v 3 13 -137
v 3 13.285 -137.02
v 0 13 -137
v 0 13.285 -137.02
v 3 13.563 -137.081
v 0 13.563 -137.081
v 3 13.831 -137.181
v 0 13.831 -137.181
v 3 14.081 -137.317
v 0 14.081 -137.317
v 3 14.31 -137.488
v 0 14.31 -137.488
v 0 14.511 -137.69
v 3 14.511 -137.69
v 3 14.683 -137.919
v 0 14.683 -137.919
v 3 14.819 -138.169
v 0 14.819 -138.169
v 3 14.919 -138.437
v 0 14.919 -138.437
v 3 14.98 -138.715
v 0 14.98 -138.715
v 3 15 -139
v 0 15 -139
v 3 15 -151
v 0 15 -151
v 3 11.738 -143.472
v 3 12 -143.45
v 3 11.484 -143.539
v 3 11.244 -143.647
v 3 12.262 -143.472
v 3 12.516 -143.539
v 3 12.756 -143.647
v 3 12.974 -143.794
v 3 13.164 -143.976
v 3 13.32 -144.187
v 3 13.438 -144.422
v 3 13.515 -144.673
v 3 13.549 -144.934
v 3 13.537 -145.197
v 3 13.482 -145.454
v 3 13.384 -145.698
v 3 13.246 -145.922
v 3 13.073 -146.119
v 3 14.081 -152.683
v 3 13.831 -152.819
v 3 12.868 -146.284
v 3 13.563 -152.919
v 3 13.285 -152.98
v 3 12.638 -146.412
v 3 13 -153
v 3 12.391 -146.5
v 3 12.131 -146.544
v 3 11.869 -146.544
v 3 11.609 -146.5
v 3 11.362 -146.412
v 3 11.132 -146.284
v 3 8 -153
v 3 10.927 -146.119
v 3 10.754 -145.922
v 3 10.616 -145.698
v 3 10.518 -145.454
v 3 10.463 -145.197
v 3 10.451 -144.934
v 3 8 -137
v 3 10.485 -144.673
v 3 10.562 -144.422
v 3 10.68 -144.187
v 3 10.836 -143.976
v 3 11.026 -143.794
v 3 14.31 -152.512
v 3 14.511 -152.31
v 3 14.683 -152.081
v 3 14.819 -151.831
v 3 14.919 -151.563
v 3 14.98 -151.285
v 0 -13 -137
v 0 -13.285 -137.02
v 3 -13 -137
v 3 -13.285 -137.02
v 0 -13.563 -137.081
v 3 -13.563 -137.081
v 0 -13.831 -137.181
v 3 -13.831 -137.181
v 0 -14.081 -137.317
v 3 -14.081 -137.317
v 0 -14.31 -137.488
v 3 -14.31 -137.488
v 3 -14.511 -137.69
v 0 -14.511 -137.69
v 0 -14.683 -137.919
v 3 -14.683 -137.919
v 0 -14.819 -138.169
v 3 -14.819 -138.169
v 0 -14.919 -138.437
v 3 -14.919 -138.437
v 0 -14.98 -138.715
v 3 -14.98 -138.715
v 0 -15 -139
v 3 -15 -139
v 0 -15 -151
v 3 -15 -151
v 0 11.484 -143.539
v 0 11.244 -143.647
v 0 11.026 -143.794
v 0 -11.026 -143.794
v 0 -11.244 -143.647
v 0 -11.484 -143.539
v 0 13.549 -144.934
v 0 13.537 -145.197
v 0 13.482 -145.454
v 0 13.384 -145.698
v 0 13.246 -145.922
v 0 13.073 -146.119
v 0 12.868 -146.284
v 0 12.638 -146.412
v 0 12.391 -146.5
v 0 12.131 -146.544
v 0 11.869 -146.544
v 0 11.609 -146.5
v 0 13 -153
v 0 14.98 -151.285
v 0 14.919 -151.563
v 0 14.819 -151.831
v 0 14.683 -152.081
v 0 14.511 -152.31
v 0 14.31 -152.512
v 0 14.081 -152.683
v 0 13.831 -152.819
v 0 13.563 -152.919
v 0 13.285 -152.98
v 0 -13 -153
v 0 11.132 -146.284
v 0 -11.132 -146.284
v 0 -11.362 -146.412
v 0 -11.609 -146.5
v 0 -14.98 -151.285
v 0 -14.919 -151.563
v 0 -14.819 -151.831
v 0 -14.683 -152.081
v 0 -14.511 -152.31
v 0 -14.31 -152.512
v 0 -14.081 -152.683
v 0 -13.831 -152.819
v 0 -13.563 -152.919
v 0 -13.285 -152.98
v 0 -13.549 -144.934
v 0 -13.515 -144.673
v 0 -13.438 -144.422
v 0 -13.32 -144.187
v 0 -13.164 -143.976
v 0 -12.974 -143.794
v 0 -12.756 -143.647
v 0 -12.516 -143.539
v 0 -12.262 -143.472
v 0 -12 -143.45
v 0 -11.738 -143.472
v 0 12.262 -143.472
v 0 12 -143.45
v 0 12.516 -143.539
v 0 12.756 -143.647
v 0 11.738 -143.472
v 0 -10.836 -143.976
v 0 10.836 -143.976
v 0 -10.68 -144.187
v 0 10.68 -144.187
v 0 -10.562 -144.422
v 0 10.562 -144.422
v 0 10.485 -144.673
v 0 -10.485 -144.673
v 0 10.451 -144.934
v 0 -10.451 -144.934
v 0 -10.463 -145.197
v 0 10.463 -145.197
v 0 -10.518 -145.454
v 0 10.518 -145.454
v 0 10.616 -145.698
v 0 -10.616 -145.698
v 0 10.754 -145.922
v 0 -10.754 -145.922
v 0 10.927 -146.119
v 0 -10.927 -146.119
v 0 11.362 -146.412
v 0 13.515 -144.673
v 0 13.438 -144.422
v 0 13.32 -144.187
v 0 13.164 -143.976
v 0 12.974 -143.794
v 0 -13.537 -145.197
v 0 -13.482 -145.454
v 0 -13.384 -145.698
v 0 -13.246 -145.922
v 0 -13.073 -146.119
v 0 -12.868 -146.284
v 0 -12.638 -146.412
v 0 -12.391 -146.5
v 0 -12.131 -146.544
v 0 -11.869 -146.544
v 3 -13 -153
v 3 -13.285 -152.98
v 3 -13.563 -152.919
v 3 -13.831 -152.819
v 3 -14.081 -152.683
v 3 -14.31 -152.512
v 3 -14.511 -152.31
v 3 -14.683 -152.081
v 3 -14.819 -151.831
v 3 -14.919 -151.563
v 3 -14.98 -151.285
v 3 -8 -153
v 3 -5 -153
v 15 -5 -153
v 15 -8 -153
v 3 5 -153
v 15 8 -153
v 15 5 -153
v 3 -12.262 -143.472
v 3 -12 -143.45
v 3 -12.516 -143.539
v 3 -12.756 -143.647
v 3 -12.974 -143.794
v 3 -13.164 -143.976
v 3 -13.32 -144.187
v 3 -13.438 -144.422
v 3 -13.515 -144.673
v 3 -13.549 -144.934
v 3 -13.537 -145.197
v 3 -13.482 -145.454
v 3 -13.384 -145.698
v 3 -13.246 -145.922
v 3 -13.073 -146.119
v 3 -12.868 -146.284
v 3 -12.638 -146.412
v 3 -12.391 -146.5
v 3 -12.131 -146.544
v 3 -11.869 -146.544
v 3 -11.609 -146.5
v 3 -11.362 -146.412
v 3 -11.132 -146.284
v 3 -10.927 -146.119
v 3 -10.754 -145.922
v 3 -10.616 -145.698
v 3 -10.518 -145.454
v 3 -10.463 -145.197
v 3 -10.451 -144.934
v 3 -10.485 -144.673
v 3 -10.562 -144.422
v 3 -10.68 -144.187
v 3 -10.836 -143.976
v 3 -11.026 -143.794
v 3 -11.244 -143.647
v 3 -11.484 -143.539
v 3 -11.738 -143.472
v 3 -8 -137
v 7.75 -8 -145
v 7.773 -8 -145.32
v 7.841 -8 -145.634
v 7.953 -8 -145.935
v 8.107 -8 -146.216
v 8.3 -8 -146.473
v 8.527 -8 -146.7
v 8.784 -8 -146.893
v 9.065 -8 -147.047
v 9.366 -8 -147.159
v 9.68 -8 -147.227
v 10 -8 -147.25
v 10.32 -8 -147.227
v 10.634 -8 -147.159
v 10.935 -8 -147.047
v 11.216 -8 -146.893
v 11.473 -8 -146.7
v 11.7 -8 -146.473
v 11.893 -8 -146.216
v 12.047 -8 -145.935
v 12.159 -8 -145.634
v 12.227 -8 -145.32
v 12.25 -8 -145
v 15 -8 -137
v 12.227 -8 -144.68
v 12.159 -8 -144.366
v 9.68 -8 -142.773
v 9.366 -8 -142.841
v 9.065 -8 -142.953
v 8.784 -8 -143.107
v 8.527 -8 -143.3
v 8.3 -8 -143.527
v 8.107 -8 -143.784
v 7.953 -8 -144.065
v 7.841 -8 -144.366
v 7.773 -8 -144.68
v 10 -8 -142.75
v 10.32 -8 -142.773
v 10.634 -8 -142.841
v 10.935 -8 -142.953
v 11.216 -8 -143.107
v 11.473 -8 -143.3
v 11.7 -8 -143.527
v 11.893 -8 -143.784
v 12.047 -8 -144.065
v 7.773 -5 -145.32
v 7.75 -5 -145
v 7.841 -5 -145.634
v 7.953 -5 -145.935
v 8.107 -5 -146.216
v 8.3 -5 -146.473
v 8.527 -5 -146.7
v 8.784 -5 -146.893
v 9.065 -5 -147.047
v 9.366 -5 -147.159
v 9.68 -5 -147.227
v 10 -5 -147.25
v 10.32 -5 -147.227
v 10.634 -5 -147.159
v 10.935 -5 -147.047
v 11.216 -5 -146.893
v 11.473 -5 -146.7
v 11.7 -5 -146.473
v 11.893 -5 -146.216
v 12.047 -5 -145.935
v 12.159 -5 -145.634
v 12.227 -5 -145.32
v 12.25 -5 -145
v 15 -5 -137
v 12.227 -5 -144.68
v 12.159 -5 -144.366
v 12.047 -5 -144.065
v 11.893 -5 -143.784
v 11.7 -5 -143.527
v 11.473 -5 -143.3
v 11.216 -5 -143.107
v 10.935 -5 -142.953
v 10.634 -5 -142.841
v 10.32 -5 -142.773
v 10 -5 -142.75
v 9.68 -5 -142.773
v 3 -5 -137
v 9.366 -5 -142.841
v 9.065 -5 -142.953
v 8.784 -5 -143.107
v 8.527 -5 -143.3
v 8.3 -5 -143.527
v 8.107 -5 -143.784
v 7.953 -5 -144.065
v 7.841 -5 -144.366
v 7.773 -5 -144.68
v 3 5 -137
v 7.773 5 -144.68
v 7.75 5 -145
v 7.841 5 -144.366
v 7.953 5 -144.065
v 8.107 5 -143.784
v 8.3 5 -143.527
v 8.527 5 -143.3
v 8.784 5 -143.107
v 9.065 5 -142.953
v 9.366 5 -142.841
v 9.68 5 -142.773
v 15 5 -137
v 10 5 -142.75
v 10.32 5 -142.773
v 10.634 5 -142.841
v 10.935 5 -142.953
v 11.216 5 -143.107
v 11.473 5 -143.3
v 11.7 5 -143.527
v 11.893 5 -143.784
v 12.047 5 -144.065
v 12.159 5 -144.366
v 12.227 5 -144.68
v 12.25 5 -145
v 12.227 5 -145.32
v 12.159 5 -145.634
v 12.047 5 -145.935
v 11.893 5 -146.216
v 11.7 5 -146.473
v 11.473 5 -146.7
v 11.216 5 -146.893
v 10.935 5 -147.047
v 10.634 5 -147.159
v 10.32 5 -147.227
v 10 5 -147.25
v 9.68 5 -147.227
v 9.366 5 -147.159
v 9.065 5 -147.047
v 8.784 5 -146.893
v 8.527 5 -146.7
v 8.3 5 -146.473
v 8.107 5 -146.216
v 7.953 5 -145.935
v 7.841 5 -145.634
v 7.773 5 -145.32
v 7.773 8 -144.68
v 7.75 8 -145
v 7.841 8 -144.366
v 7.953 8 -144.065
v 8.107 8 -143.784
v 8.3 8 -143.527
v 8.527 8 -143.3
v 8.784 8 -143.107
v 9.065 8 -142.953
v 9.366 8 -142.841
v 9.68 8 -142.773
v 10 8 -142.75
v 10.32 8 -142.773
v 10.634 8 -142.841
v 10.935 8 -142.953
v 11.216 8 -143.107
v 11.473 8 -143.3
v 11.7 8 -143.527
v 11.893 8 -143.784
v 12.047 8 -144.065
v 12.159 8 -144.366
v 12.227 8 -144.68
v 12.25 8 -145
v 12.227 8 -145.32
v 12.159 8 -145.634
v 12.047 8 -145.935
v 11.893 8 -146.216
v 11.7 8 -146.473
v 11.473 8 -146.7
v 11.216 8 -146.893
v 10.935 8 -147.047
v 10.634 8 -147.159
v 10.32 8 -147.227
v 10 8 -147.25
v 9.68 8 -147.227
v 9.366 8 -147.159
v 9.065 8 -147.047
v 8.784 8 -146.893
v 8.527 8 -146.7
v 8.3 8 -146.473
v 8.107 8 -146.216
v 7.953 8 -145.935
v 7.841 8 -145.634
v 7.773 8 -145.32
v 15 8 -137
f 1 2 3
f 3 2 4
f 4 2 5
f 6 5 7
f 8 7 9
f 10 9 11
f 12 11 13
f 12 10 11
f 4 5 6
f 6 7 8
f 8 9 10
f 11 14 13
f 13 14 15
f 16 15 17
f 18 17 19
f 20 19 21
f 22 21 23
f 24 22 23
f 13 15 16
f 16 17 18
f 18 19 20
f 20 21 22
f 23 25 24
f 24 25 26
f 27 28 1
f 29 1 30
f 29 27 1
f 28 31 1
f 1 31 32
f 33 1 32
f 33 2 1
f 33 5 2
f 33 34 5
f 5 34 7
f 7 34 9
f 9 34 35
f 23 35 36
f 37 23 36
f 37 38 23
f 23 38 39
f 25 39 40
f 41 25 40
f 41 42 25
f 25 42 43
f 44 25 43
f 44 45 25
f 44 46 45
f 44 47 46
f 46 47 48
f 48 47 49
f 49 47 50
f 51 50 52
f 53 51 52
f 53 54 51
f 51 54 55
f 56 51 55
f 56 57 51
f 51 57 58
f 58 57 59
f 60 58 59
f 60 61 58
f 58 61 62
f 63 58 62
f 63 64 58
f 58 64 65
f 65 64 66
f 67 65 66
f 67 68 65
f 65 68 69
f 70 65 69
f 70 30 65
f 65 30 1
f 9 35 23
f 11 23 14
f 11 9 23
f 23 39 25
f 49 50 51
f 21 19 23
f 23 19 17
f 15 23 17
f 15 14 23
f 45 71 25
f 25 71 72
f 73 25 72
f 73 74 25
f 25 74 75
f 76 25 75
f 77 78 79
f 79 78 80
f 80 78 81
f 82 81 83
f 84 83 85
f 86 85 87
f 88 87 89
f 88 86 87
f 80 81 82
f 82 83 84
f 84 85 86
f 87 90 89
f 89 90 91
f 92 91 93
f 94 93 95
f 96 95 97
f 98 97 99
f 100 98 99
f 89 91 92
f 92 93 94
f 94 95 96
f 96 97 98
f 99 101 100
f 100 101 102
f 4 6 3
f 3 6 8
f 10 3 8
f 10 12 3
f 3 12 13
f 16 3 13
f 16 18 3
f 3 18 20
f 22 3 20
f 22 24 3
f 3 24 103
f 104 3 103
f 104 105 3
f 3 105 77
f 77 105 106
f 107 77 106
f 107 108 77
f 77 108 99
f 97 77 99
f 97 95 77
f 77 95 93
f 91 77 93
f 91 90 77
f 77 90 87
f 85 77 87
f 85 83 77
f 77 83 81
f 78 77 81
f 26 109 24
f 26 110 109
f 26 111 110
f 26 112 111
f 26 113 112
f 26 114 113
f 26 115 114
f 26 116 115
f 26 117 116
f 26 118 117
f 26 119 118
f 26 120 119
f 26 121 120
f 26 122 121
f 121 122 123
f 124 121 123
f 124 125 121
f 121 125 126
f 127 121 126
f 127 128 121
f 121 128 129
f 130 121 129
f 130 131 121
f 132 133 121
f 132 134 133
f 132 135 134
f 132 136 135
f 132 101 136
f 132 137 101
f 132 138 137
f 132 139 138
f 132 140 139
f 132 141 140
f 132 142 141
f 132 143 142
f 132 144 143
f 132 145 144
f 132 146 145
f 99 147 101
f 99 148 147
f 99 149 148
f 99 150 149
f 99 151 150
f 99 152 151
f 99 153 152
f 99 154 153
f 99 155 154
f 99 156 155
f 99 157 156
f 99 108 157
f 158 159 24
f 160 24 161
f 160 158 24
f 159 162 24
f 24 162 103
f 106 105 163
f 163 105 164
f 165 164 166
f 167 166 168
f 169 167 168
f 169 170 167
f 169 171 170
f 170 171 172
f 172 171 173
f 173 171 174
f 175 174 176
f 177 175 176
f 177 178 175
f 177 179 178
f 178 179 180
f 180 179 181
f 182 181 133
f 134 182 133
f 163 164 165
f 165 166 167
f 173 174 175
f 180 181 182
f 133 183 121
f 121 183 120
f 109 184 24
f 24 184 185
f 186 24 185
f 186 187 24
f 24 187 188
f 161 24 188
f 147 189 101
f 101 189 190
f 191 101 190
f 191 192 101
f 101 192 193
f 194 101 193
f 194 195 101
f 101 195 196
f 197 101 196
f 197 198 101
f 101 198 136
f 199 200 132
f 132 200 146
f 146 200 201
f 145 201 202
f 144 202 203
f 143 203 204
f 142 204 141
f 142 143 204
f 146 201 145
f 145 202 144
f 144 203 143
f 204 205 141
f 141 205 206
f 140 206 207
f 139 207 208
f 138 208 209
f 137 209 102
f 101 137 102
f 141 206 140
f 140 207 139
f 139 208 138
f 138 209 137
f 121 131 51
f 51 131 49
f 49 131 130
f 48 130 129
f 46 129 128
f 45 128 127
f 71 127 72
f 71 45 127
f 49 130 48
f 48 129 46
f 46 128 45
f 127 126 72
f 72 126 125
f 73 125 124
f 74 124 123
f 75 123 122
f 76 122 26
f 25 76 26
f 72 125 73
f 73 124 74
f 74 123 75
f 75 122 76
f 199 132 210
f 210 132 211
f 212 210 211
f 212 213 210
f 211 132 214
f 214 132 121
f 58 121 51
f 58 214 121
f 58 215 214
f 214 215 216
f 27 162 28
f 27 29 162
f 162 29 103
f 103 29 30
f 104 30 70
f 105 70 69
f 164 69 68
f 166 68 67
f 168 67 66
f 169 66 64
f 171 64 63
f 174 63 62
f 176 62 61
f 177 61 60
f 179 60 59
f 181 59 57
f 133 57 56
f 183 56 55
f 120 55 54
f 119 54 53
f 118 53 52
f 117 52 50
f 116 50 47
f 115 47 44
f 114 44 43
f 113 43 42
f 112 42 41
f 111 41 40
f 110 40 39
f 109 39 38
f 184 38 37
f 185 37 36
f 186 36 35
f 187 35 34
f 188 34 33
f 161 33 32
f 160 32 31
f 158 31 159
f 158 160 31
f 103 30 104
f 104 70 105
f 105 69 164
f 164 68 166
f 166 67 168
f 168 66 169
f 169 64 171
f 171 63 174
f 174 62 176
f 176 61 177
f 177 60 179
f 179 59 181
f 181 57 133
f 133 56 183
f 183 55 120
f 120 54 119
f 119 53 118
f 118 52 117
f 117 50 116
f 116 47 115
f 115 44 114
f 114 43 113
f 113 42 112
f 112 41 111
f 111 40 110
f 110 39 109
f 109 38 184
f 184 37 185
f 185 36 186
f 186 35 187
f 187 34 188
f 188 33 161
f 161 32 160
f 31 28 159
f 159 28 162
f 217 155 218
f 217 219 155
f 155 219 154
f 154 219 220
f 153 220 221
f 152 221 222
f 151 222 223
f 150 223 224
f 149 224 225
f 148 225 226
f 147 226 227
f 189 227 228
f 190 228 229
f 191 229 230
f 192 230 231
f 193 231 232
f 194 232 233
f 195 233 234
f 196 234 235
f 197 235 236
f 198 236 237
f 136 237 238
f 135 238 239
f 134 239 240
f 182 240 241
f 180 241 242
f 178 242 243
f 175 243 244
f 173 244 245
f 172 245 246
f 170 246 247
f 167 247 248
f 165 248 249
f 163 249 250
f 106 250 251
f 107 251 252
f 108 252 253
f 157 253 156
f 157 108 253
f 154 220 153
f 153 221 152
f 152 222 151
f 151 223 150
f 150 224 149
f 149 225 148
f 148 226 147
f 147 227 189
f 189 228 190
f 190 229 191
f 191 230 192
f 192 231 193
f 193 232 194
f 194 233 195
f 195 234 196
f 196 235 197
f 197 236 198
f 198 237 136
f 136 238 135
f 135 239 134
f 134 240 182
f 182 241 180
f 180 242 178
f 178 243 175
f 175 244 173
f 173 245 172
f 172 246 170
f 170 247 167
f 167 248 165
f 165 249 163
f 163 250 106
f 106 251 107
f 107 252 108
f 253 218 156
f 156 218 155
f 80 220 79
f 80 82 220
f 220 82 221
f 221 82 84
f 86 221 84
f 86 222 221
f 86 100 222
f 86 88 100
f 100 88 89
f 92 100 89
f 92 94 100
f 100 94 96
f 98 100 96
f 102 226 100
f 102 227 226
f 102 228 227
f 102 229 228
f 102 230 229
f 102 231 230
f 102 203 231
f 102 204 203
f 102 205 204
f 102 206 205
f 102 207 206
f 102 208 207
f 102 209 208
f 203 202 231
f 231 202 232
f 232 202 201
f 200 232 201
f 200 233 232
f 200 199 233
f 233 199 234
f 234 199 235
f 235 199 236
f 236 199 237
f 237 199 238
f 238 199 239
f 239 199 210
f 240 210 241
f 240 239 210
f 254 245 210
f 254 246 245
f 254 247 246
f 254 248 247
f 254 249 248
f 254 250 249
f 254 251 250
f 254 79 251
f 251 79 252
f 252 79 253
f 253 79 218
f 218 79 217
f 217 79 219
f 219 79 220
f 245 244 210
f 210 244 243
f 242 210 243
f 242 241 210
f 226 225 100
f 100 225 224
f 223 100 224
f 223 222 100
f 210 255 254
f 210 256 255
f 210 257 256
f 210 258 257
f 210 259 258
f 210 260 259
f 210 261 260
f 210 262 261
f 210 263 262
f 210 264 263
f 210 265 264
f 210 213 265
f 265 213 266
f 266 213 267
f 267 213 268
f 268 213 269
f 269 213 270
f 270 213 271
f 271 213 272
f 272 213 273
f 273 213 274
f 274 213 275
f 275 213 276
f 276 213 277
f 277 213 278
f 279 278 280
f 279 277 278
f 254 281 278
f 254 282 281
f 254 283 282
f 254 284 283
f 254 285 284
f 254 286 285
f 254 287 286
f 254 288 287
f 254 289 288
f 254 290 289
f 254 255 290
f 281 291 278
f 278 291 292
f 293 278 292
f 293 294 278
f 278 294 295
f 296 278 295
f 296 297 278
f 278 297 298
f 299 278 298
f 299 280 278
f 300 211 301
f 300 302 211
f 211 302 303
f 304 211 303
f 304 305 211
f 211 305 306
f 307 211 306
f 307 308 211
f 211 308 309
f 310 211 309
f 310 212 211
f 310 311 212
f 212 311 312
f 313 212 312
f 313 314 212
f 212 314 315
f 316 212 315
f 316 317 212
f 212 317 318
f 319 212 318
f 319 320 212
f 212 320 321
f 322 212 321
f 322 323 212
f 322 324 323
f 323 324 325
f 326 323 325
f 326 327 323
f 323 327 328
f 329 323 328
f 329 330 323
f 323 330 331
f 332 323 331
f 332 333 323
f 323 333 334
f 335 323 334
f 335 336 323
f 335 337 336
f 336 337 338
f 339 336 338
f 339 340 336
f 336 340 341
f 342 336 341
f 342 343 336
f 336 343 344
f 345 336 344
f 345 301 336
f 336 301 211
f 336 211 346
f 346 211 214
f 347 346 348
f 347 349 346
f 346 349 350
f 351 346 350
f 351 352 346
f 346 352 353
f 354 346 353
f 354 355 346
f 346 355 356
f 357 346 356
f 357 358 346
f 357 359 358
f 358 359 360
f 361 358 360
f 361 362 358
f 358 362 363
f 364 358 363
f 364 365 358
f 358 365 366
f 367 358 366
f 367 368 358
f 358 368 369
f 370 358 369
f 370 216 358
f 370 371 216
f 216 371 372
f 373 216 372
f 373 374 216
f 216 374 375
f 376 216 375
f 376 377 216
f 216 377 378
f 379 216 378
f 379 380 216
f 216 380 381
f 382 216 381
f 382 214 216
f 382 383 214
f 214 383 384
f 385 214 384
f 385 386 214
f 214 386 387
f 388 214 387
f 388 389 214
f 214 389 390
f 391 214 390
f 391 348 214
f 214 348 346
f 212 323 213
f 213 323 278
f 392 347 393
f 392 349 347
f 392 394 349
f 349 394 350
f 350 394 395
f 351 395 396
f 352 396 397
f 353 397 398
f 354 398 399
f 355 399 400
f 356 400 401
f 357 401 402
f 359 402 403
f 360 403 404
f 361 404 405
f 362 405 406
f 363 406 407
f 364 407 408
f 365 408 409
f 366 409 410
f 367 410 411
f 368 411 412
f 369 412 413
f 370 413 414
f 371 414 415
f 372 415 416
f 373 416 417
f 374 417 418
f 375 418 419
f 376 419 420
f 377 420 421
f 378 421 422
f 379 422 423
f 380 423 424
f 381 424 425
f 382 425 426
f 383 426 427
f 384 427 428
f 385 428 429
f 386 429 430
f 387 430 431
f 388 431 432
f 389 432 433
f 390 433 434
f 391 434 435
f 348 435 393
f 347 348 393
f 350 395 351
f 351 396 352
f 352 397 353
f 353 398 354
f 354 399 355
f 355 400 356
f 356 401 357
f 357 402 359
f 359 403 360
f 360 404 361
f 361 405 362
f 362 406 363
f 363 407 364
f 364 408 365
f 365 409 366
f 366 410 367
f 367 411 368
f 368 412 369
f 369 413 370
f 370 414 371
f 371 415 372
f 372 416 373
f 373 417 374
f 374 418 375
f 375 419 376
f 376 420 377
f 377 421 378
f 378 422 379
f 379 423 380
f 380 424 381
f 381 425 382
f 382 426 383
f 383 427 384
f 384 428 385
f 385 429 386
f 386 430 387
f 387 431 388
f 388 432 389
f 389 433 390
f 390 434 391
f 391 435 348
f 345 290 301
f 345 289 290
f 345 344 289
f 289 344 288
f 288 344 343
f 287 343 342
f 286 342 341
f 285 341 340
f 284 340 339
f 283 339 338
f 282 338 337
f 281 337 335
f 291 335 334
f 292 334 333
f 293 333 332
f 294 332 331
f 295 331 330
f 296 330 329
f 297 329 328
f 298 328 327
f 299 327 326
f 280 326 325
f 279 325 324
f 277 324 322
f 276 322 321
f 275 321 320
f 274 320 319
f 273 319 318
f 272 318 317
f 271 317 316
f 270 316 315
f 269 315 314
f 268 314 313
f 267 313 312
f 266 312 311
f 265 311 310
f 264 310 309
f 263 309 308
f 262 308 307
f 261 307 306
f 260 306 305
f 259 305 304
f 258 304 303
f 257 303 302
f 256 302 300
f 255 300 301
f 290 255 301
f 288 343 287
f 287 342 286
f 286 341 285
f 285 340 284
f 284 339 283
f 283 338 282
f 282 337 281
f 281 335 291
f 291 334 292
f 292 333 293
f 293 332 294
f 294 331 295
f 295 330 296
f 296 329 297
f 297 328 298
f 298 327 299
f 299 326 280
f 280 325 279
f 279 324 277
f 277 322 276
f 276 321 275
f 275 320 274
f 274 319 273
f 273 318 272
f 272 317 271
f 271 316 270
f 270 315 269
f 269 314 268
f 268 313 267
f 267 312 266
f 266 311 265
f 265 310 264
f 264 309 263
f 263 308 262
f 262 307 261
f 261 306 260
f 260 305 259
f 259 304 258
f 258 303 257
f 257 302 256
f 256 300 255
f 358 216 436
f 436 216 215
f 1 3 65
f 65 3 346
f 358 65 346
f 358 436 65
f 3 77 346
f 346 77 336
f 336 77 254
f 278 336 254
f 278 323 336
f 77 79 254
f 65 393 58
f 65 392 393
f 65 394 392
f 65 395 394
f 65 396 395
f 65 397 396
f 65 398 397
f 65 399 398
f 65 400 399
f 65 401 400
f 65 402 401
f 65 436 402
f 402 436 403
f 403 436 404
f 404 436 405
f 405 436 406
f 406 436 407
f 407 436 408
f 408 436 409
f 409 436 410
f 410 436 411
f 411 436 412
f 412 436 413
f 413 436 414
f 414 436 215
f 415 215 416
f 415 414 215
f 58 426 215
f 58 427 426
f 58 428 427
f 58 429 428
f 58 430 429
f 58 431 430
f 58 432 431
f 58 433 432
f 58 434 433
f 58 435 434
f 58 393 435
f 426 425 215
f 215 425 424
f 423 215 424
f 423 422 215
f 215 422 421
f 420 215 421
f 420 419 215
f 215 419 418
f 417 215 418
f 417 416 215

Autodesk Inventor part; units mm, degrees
ref_plane "YZ Plane" through (0, 0, 0) normal (1, 0, 0) x (0, 1, 0)
ref_plane "XZ Plane" through (0, 0, 0) normal (0, 1, 0) x (-1, 0, 0)
ref_plane "XY Plane" through (0, 0, 0) normal (0, 0, 1) x (1, 0, 0)
sketch "Sketch1" plane through (0, 0, 0) normal (0, 1, 0) x (-1, 0, 0)
  line L0 (0, 0) -> (0, -280)
  line L1 (0, -280) -> (17, -280)
  line L2 (17, -280) -> (17, 0)
  line L3 (17, 0) -> (0, 0)
  line L4 (0, 0) -> (-10, 0)
  line L5 (-10, 0) -> (-10, -40)
  line L6 (-10, -40) -> (0, -40)
  line L7 (0, 0) -> (0, -125)
  line L8 (0, 0) -> (-70, 0)
  line L9 (0, -125) -> (0, -145)
  line L10 (0, -145) -> (0, -165)
  line L11 (-70, 0) -> (0, -145)
  circle A0 centre (-70, 0) radius 12.5
  line L12 (-81.2569, -5.4344) -> (0, -173.7522)
  line L13 (-70, 0) -> (-58.7431, 5.4344)
  line L14 (-58.7431, 5.4344) -> (0, -116.2478)
  line L15 (-70, 0) -> (-70, -3.2)
  line L16 (-81.2569, -5.4344) -> (-83.8804, 0)
  line L17 (-64.5656, -11.2569) -> (-64.5656, 0)
  line L18 (-64.5656, 0) -> (-76.5656, 0)
  line L19 (-64.5656, 0) -> (-52.5656, 0)
  line L20 (-64.5656, -11.2569) -> (-64.5656, -19.2569)
  line L21 (-64.5656, -19.2569) -> (-76.5656, -19.2569)
  line L22 (-76.5656, -19.2569) -> (-76.5656, 0)
  line L23 (-64.5656, -19.2569) -> (-52.5656, -19.2569)
  line L24 (-52.5656, -19.2569) -> (-52.5656, 0)
  line L25 (-70, -3.2) -> (-76.5656, -3.2)
  line L26 (-70, -3.2) -> (-52.5656, -3.2)
  line L27 (-52.5656, -3.2) -> (-52.5656, -6.2)
  line L28 (-52.5656, -6.2) -> (-76.5656, -6.2)
  line L29 (-64.5656, -6.2) -> (-64.5656, -12.2)
  circle A1 centre (-64.5656, -12.2) radius 2.4
  line L30 (0, -145) -> (0, -157)
  line L31 (0, -145) -> (0, -133)
  line L32 (0, -145) -> (-3, -145)
  line L33 (-3, -145) -> (-10, -145)
  circle A2 centre (-10, -145) radius 2.25
  line L34 (0, -145) -> (0, -137)
  line L35 (0, -137) -> (-15, -137)
  line L36 (-15, -137) -> (-15, -145)
  line L37 (0, -145) -> (0, -153)
  line L38 (0, -153) -> (-15, -153)
  line L39 (-15, -153) -> (-15, -145)
  line L40 (-3, -145) -> (-3, -137)
  line L41 (-3, -145) -> (-3, -153)
  dimension "d0" = 280
  dimension "d1" = 17
  dimension "d2" = 280
  dimension "d3" = 10
  dimension "d4" = 40
  dimension "d5" = 125
  dimension "d6" = 70
  dimension "d7" = 20
  dimension "d8" = 20
  dimension "d10" = 25
  dimension "d11" = 3.2
  dimension "d12" = 12
  dimension "d13" = 12
  dimension "d14" = 8
  dimension "d16" = 3
  dimension "d17" = 6
  dimension "d18" = 4.8
  dimension "d19" = 12
  dimension "d20" = 12
  dimension "d21" = 3
  dimension "d22" = 7
  dimension "d23" = 4.5
  dimension "d24" = 5
  dimension "d25" = 8
  dimension "d26" = 8
extrude "Extrusion1" add sketch "Sketch1" along normal mid plane 16 contours L0 L11 L40 L35 | L38 L39 L36 L12 | L12 L36 L35 L11 L40 L41 L38 | L32 L40 L11 | L0 L38 L41 L32 | L40 L11 L35
extrude "Extrusion2" cut sketch "Sketch1" along normal mid plane 10 contours L38 L39 L36 L12 | L12 L36 L35 L11 L40 L41 L38 | L40 L11 L35
extrude "Extrusion3" add sketch "Sketch1" along normal mid plane 30 contours L0 L11 L40 L35 | L32 L40 L11 | L0 L38 L41 L32
sketch "Sketch2" plane through (0, -15, -153) normal (-1, 0, 0) x (0, 0, 1)
  line L0 (0, 23) -> (0, 30)
  line L1 (0, 0) -> (0, 30) projected
  line L2 (0, 30) -> (8, 30)
  line L3 (16, 30) -> (0, 30) projected
  line L4 (8, 30) -> (8, 27)
  circle A0 centre (8, 27) radius 1.55
  line L5 (0, 0) -> (8, 0)
  line L6 (8, 0) -> (8, 3)
  circle A1 centre (8, 3) radius 1.55
  point P0 (153, 15)
  dimension "d33" = 8
  dimension "d34" = 3
  dimension "d35" = 3.1
  dimension "d36" = 8
  dimension "d37" = 3
  dimension "d38" = 3.1
extrude "Extrusion4" cut sketch "Sketch2" against normal blind 30
fillet "Fillet1" radius 2 4 edges at (1.5, 15, -153) (1.5, -15, -153) (1.5, -15, -137) (1.5, 15, -137)
properties part number "support_clip_base(2)"
